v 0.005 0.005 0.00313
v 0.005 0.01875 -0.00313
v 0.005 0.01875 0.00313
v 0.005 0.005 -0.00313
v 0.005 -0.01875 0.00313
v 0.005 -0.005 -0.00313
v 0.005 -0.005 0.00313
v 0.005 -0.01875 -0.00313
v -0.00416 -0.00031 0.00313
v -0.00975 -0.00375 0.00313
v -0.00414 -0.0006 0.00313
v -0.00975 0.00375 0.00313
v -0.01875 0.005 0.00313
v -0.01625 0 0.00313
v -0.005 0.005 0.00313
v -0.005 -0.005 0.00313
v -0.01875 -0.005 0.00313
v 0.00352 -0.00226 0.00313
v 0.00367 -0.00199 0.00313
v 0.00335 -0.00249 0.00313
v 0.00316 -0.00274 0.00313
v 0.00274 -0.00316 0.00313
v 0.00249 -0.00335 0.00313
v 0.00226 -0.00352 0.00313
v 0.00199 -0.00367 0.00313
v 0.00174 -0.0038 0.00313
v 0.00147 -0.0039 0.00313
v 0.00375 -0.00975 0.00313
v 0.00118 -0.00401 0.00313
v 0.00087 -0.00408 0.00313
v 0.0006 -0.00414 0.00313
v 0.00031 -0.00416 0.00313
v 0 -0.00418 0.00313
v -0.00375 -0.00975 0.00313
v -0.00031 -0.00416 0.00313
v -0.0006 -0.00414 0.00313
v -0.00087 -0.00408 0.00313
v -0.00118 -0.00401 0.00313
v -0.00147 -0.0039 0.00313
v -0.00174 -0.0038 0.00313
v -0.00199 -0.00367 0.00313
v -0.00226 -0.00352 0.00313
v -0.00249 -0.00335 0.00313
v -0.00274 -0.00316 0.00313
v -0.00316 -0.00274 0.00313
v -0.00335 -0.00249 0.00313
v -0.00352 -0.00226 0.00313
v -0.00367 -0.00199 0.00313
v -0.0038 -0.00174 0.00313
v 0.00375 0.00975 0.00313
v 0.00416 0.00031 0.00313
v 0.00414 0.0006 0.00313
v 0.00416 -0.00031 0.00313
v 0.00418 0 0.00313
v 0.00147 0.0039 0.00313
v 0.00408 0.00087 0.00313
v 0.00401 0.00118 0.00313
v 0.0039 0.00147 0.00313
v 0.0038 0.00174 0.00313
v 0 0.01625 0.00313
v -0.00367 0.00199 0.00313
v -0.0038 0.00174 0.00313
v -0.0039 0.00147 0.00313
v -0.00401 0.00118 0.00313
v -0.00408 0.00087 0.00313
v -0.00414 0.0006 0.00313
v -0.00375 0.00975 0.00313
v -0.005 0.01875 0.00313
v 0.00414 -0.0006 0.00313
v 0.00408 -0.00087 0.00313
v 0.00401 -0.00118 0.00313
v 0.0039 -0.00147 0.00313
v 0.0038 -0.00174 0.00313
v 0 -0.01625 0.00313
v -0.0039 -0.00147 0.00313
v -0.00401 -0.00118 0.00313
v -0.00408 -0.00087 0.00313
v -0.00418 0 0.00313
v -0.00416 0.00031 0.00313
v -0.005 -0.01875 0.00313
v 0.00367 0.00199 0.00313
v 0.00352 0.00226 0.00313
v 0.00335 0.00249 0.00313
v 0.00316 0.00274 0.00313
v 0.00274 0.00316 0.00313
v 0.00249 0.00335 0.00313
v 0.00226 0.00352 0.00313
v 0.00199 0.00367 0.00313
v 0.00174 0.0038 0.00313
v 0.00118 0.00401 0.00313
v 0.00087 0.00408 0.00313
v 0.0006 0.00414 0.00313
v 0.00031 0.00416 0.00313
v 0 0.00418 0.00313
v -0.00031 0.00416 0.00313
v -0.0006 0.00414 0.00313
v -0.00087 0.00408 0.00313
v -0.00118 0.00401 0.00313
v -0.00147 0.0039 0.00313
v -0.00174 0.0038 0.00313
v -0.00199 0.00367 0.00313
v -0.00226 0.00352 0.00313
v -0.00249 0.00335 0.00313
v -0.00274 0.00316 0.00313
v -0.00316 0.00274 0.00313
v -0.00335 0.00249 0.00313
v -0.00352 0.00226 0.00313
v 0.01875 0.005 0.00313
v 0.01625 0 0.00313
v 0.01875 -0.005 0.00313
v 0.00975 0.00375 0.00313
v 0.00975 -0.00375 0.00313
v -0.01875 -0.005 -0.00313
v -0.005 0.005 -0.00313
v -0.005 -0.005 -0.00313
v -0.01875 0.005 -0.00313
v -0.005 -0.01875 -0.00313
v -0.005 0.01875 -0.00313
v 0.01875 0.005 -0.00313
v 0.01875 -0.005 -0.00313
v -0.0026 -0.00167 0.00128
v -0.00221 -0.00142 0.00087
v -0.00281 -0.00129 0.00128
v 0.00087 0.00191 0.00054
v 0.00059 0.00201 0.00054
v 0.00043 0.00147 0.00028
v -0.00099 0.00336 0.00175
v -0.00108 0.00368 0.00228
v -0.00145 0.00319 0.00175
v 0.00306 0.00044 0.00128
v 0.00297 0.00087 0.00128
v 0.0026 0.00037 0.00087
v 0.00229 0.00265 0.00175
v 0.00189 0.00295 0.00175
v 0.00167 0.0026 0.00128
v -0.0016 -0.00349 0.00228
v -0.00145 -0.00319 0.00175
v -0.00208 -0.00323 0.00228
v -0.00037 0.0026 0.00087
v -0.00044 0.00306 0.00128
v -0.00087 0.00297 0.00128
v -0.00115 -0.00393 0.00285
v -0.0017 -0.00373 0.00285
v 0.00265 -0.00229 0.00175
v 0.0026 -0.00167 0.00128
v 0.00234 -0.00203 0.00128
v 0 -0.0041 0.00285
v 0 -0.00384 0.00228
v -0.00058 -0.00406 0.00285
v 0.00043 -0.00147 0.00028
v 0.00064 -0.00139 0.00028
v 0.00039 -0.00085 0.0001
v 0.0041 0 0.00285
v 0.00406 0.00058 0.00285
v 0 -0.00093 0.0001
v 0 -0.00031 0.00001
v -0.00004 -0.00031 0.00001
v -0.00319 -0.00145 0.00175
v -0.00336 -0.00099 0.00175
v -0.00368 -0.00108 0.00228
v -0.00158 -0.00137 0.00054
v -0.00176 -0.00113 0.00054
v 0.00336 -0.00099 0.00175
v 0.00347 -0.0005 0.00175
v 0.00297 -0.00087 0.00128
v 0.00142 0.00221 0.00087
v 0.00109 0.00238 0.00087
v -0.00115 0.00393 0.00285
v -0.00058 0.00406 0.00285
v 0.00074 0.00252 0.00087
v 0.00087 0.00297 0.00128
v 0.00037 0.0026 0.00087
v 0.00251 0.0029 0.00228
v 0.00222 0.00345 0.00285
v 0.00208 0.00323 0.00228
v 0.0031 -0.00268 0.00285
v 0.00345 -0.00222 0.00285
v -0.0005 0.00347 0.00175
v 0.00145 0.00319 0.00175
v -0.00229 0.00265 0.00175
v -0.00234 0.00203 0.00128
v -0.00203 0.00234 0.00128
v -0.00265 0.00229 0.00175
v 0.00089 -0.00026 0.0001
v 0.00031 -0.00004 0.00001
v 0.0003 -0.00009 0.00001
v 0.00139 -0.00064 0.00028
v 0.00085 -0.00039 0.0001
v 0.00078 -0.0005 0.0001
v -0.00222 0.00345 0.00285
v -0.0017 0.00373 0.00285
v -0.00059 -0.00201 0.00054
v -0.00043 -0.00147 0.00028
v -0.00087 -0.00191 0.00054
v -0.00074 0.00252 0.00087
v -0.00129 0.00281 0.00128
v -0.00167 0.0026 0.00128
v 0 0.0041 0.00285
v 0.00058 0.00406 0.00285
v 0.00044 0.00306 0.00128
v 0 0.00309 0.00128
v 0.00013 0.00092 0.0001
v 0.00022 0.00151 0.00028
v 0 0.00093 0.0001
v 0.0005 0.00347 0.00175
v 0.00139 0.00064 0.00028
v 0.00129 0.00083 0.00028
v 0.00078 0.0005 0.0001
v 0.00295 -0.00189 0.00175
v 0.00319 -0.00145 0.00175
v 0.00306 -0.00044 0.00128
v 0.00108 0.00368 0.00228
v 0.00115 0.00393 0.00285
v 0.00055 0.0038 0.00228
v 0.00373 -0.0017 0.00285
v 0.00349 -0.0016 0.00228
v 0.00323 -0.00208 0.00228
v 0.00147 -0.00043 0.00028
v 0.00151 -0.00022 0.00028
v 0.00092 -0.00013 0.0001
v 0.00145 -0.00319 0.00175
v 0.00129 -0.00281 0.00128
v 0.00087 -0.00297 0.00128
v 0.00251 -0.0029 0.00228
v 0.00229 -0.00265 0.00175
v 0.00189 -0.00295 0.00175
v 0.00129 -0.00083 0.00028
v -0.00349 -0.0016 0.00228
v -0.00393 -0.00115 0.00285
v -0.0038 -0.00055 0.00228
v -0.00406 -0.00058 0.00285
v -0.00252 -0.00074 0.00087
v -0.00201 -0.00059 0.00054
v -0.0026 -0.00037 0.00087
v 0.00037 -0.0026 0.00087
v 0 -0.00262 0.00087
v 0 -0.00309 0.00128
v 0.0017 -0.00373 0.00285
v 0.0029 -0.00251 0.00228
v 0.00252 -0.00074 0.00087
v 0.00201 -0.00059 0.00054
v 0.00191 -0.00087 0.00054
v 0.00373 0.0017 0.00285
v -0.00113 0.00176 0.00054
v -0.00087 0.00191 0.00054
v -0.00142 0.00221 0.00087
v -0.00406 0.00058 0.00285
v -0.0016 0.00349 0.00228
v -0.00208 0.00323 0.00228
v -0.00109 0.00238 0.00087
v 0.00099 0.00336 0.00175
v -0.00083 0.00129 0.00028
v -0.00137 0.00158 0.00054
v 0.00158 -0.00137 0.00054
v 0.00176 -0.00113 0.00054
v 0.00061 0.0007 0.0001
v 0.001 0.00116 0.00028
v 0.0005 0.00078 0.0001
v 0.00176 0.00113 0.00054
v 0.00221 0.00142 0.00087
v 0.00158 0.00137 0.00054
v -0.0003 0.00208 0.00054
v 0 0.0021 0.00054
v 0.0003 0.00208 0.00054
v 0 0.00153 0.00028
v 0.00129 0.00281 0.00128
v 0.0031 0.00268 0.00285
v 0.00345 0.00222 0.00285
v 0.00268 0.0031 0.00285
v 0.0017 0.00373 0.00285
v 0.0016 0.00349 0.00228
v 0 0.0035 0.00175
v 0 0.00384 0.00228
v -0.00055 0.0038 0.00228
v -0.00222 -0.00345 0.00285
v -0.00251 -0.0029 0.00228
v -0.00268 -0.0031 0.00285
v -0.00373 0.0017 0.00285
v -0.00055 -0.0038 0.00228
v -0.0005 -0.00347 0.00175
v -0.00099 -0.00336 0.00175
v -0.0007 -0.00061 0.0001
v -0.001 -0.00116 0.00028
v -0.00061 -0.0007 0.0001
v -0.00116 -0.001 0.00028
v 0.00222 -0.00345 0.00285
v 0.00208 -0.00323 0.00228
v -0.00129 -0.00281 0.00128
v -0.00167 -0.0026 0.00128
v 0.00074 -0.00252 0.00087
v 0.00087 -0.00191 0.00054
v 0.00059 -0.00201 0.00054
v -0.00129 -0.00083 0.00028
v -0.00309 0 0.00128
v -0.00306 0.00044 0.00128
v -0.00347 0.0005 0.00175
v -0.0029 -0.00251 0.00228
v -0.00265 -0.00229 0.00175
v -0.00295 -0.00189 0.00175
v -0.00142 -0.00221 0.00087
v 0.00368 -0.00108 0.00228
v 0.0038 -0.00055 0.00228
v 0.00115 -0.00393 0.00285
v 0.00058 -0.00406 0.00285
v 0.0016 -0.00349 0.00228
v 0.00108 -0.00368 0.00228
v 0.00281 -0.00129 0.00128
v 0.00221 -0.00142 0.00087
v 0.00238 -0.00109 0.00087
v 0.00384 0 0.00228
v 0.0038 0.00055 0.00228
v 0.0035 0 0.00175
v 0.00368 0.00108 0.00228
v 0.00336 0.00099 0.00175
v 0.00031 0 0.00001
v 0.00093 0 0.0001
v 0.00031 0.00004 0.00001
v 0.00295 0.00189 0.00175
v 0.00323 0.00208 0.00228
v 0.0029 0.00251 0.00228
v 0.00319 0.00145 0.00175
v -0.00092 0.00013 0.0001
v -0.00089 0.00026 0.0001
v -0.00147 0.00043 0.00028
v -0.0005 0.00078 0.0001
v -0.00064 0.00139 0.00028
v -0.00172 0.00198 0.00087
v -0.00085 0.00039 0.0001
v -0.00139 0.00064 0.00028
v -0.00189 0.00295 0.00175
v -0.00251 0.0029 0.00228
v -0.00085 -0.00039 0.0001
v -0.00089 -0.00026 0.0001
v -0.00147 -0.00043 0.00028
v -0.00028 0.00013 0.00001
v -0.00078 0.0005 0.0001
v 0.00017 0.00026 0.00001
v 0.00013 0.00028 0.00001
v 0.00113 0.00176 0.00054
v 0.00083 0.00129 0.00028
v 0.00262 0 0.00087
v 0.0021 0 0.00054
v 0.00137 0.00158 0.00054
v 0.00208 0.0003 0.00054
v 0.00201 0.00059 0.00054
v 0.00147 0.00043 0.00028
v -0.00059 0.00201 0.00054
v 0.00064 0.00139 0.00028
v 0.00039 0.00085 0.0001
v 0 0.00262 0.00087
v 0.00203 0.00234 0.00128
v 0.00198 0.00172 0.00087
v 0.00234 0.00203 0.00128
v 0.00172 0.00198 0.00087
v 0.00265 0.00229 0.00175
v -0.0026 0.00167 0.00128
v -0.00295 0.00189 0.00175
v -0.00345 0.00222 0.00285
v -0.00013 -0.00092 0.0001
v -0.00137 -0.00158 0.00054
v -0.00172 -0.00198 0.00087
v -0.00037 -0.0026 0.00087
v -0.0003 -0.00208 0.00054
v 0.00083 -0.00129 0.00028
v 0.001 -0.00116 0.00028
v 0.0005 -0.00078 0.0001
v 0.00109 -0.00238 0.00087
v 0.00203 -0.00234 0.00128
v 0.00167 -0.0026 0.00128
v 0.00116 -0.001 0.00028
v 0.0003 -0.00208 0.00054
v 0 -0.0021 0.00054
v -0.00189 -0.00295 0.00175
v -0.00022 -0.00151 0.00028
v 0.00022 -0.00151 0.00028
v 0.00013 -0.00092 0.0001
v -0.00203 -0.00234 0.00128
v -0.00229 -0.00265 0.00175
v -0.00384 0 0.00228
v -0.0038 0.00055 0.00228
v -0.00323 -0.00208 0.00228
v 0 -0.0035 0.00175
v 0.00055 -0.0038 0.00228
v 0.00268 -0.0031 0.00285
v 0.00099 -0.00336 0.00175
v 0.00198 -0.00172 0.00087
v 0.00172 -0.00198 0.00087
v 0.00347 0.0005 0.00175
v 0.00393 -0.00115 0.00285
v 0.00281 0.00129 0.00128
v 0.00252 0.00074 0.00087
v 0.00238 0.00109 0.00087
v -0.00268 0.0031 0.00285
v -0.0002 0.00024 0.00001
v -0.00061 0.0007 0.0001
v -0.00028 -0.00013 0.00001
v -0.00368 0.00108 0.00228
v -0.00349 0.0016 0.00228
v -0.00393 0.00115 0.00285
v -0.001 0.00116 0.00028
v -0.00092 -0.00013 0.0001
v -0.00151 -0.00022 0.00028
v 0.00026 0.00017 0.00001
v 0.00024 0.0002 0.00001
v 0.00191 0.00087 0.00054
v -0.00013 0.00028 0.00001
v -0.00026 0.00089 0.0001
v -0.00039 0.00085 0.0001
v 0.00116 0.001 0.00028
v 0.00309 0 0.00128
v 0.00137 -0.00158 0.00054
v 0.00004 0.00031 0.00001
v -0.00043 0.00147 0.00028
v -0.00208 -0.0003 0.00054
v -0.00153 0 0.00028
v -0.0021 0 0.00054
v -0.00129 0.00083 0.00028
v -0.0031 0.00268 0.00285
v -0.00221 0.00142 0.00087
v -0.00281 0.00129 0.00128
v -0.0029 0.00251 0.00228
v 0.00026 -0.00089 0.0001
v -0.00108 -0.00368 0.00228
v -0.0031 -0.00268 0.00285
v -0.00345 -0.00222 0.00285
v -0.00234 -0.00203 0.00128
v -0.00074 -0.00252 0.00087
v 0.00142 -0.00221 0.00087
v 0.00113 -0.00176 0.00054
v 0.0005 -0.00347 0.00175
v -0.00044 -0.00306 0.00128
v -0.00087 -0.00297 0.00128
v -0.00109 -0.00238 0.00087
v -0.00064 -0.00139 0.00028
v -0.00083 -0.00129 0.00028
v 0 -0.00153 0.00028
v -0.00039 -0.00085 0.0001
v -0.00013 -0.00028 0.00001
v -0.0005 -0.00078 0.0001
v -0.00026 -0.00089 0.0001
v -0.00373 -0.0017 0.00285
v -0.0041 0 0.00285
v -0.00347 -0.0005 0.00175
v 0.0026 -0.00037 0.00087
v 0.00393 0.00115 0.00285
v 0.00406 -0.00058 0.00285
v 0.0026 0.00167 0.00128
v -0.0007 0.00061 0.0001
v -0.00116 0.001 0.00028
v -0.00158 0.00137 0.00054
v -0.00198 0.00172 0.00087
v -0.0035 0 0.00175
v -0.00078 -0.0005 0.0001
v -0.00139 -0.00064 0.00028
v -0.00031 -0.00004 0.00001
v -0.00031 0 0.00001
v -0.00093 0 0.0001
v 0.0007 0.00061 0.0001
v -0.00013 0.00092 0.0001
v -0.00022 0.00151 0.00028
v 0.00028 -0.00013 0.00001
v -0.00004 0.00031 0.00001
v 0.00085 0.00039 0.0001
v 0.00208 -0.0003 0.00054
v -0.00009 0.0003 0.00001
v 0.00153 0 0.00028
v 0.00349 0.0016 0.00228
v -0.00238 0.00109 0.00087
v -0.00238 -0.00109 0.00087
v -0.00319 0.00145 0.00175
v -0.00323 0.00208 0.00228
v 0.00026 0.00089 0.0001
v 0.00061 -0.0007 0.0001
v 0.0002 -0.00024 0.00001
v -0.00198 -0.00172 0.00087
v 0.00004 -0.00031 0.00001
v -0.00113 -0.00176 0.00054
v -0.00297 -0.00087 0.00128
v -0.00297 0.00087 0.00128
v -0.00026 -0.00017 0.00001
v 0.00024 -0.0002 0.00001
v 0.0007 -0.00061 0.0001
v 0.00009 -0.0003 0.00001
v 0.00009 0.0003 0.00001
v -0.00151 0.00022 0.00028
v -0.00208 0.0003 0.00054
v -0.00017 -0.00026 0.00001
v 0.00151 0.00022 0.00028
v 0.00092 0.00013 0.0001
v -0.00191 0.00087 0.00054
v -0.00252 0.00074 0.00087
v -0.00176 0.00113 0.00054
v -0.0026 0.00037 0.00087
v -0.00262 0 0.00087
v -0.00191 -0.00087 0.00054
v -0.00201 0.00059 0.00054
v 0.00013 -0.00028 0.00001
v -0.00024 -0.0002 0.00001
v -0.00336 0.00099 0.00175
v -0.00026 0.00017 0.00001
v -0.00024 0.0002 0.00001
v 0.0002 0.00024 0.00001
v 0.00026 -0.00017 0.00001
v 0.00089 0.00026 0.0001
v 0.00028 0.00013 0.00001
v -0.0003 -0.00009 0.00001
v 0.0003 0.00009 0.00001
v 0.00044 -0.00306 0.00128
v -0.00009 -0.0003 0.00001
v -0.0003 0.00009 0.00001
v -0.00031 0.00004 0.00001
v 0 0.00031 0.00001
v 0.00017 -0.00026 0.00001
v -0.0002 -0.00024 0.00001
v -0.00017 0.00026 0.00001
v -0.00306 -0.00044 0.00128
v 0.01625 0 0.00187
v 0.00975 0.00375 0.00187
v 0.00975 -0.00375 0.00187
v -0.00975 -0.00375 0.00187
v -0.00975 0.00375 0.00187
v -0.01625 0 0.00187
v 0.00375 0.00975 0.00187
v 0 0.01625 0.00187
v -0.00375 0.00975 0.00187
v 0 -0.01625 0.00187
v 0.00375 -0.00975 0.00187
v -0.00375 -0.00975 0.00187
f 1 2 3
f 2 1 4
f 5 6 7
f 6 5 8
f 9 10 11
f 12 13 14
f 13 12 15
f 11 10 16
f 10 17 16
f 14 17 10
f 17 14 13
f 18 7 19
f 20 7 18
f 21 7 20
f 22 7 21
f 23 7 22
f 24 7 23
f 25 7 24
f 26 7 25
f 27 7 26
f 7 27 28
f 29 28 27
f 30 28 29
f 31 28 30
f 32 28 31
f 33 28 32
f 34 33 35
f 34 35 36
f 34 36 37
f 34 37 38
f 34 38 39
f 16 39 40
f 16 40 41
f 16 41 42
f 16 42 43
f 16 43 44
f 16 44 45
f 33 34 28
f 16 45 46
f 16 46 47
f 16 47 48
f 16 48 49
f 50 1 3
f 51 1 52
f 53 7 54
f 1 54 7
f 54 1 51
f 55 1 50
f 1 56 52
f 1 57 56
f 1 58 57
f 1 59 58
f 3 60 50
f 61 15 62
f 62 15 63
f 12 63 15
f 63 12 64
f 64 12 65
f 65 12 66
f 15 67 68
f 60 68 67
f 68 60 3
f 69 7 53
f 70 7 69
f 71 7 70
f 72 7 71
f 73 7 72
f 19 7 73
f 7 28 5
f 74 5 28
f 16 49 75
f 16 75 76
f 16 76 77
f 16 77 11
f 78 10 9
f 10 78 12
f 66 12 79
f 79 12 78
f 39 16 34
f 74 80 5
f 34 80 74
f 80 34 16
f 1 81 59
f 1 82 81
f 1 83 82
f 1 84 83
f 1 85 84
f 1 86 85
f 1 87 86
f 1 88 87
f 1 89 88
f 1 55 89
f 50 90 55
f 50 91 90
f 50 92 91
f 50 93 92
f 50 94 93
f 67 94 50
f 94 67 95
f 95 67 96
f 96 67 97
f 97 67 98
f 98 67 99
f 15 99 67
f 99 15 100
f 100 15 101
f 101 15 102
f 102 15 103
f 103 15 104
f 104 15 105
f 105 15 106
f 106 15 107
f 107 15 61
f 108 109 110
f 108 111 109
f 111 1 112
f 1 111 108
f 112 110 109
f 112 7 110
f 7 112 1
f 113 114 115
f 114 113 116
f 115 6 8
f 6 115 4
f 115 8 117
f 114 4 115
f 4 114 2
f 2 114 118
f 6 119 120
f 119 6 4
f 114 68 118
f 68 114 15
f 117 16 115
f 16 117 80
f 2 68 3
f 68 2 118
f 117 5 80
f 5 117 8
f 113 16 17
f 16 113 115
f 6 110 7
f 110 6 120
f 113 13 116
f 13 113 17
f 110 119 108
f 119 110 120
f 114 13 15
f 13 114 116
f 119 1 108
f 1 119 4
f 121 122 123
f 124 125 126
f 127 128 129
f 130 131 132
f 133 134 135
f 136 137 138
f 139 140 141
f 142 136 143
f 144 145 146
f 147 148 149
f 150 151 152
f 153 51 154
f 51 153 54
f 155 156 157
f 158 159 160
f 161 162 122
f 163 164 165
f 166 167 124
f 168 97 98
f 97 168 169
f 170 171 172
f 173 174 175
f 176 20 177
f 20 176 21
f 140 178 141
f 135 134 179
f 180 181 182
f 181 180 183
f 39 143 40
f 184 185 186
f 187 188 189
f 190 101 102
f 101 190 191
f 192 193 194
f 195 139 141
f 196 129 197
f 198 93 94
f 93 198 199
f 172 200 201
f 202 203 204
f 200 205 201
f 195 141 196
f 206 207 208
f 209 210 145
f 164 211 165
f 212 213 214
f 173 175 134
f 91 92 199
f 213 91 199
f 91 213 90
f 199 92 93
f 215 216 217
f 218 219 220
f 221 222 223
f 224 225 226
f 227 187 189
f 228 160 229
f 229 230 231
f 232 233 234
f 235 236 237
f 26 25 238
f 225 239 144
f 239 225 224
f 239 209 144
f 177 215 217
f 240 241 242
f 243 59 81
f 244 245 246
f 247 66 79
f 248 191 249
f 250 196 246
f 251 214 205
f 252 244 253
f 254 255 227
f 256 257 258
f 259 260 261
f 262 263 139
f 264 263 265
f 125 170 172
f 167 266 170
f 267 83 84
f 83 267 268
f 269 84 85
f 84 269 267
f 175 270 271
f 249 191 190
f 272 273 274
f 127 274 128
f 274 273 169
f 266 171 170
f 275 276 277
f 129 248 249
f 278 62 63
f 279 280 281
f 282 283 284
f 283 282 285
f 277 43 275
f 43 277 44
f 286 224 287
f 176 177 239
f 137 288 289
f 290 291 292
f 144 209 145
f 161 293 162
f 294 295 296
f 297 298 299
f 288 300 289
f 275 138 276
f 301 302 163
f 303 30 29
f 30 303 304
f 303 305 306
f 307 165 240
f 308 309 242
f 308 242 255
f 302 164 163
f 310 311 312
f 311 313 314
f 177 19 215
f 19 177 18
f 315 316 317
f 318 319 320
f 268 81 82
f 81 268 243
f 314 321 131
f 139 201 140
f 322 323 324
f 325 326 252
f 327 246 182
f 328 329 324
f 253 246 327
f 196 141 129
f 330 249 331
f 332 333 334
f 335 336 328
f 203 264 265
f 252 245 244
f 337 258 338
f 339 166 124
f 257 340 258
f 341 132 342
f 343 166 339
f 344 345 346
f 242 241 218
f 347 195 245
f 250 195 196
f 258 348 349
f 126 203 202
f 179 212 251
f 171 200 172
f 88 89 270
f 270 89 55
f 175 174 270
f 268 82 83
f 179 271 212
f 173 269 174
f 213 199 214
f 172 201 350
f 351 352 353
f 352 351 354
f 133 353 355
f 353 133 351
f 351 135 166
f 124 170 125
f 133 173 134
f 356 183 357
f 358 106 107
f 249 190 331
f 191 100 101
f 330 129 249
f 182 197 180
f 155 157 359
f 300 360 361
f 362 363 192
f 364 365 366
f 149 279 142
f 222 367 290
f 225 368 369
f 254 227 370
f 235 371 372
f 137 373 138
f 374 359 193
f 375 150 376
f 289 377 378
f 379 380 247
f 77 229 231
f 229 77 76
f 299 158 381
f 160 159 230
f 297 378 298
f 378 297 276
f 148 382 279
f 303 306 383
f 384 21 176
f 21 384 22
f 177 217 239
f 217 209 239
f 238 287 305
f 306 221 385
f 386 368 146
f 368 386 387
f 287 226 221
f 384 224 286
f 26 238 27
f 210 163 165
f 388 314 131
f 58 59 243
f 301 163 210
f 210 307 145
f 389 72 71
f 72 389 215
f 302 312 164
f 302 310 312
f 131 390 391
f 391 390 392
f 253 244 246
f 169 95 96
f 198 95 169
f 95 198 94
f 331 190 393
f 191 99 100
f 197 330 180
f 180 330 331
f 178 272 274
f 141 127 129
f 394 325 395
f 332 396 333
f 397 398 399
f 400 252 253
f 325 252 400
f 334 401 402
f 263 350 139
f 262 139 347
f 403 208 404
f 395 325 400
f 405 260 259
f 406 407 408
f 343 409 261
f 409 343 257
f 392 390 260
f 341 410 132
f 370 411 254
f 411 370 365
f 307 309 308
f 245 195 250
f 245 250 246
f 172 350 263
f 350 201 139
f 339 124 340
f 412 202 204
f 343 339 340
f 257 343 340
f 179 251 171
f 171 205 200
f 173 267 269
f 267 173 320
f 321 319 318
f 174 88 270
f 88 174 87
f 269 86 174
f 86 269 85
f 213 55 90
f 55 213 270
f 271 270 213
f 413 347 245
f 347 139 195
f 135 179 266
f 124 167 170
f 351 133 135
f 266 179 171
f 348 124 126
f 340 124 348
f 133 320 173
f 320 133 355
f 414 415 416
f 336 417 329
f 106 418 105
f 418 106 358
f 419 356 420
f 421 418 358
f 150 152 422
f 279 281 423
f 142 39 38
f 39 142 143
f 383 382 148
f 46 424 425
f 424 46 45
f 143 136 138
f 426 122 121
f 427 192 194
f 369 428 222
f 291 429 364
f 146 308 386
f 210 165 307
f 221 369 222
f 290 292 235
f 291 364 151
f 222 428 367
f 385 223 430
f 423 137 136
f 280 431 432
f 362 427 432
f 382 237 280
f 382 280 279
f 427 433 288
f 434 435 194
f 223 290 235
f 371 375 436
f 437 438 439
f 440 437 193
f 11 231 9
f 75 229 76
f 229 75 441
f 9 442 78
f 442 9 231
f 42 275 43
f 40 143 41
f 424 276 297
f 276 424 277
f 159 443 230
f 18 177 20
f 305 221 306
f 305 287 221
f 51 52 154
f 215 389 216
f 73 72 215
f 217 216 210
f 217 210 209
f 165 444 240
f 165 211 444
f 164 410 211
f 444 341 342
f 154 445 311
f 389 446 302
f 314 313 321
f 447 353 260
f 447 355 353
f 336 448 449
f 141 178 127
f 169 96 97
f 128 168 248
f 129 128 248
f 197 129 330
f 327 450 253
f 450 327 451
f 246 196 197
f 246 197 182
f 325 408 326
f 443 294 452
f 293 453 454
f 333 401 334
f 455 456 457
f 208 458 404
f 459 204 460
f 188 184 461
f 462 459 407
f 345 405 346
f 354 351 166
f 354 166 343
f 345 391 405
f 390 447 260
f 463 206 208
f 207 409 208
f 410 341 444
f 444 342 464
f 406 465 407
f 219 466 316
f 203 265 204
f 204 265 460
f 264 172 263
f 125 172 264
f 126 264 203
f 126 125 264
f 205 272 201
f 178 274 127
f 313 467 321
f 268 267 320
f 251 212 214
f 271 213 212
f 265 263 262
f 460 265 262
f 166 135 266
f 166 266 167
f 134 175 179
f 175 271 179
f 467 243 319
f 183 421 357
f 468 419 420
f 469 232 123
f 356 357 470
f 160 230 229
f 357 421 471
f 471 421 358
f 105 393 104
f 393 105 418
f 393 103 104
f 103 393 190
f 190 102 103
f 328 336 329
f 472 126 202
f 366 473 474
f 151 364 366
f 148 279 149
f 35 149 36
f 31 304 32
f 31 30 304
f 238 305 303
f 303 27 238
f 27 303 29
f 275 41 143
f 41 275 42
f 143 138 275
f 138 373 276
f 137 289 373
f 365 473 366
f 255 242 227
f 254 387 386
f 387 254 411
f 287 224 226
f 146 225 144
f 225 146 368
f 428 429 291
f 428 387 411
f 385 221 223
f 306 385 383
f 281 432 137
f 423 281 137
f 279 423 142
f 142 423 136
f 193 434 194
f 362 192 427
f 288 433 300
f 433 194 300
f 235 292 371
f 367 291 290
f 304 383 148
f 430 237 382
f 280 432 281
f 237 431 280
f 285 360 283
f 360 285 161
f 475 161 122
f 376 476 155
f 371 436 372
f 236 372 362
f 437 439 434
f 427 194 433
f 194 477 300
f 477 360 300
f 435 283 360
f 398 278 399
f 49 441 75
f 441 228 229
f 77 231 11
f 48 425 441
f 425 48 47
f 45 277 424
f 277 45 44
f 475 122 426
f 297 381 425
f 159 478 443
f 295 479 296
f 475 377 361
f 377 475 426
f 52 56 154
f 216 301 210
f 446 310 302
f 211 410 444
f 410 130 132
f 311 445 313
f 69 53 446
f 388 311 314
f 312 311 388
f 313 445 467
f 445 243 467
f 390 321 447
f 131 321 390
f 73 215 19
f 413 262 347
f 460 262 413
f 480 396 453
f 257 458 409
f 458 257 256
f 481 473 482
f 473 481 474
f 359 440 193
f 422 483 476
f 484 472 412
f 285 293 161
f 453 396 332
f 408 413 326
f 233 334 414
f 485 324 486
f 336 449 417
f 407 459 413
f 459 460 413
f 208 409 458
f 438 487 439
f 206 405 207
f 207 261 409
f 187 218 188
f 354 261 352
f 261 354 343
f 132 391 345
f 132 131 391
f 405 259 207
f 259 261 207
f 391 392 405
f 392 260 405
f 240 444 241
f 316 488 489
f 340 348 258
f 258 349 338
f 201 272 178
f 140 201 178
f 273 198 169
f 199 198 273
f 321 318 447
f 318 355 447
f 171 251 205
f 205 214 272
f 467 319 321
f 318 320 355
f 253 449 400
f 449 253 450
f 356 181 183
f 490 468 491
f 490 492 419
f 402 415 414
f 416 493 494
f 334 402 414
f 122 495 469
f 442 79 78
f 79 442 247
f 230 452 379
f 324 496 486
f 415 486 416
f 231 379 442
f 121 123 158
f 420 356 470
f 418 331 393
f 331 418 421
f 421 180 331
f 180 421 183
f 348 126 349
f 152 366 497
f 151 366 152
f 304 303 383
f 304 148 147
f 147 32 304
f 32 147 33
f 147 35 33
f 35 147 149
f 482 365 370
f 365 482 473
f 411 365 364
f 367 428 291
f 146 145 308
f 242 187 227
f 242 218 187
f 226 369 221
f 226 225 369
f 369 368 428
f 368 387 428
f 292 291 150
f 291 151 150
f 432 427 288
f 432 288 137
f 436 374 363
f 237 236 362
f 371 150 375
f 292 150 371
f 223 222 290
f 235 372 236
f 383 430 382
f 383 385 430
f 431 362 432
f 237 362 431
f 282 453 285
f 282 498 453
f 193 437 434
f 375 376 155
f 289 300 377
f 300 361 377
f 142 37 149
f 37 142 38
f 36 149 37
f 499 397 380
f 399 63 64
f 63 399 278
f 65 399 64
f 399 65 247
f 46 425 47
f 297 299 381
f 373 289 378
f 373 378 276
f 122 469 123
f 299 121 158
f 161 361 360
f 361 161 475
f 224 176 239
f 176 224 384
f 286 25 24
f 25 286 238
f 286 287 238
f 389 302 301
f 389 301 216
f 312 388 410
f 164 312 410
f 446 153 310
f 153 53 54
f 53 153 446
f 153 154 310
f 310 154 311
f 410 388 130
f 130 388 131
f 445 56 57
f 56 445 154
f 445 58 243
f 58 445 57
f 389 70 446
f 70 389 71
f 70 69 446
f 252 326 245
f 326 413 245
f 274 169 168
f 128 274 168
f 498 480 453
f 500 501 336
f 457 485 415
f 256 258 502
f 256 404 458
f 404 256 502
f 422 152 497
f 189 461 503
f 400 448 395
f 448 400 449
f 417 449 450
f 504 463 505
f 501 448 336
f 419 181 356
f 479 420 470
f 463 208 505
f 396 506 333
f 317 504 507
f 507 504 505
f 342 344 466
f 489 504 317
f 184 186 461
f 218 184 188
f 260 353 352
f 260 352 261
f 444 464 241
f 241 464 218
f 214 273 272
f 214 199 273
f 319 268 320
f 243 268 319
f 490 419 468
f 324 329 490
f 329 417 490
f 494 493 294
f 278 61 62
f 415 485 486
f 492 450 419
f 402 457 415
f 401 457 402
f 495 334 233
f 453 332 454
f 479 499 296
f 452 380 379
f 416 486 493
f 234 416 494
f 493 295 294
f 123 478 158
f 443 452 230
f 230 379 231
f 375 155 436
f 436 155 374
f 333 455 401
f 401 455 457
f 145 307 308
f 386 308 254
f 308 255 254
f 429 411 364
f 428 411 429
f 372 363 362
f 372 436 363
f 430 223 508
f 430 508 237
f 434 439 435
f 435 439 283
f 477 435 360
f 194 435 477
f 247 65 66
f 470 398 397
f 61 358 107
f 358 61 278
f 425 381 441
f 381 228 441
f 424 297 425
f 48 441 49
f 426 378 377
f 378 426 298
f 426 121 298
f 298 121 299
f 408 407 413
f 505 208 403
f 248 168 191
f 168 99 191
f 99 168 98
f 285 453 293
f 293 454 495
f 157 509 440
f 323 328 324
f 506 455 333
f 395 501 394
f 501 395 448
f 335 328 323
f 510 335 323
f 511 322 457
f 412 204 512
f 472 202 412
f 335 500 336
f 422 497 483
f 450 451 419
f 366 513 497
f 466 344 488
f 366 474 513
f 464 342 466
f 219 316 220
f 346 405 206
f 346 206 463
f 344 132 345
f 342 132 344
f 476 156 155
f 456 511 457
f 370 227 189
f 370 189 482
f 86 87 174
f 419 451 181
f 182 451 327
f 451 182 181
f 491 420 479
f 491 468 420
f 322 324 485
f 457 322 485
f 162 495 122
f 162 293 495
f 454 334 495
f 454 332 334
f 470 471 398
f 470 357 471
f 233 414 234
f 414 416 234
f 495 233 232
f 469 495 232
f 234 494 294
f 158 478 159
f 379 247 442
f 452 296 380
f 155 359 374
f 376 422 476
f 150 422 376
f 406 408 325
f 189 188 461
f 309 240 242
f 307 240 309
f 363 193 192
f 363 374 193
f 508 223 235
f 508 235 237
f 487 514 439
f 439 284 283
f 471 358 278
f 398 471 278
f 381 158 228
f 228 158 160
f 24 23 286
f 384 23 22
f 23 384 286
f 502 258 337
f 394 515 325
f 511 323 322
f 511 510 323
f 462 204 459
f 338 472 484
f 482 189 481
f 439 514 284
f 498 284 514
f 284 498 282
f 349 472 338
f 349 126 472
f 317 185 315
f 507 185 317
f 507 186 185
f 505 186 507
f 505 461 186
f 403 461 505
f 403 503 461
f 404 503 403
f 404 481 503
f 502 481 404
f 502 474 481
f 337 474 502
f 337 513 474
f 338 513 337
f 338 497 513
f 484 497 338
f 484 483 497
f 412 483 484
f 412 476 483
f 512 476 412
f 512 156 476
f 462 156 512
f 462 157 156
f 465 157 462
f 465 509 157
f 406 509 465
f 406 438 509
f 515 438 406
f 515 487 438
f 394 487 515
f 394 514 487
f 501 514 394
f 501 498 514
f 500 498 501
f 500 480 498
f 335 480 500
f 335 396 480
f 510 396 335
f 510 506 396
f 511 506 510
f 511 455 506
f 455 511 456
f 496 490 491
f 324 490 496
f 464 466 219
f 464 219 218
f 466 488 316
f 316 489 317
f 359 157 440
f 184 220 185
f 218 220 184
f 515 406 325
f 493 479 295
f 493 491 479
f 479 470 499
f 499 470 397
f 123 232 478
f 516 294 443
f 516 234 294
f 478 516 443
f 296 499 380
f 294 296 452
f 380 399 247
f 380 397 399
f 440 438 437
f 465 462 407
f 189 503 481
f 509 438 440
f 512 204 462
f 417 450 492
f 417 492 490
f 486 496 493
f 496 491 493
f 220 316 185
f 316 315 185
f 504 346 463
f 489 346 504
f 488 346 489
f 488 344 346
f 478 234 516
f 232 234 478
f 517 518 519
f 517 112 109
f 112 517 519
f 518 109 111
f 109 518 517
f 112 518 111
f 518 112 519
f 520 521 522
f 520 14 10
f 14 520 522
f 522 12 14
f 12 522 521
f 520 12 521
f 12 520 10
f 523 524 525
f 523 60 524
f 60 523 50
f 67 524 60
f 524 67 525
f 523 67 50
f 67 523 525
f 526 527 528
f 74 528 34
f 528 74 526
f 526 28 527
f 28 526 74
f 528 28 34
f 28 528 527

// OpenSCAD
scale([0.00125, 0.00125, 0.00125])
difference() {

    // The cross.
    union() {
        cube([8, 30, 5], true);
        rotate([0, 0, 90])
        cube([8, 30, 5], true);
    }
    
    // The indentations on the cross.
    translate([0, 0, 3.5])
    
    // Change the uncommented line to use a different
    // resolution cut-out for the center sphere.
    sphere(3.5, $fa=5, $fs=0.5);
    //sphere(3.5, $fa=5, $fs=0.1);
    //sphere(3.5);

    translate([13, 0, 2])
    rotate([0, 0, 90])
    scale([3,3,1])
    linear_extrude(height = 1, center = true, twist = 0)
    polygon(points=[[0,0],[-1,sqrt(3)],[1,sqrt(3)]]);
    
    translate([-13, 0, 2])
    rotate([0, 0, 270])
    scale([3,3,1])
    linear_extrude(height = 1, center = true, twist = 0)
    polygon(points=[[0,0],[-1,sqrt(3)],[1,sqrt(3)]]);
    
    translate([0, 13, 2])
    rotate([0, 0, 180])
    scale([3,3,1])
    linear_extrude(height = 1, center = true, twist = 0)
    polygon(points=[[0,0],[-1,sqrt(3)],[1,sqrt(3)]]);
    
    translate([0, -13, 2])
    rotate([0, 0, 0])
    scale([3,3,1])
    linear_extrude(height = 1, center = true, twist = 0)
    polygon(points=[[0,0],[-1,sqrt(3)],[1,sqrt(3)]]);
}
